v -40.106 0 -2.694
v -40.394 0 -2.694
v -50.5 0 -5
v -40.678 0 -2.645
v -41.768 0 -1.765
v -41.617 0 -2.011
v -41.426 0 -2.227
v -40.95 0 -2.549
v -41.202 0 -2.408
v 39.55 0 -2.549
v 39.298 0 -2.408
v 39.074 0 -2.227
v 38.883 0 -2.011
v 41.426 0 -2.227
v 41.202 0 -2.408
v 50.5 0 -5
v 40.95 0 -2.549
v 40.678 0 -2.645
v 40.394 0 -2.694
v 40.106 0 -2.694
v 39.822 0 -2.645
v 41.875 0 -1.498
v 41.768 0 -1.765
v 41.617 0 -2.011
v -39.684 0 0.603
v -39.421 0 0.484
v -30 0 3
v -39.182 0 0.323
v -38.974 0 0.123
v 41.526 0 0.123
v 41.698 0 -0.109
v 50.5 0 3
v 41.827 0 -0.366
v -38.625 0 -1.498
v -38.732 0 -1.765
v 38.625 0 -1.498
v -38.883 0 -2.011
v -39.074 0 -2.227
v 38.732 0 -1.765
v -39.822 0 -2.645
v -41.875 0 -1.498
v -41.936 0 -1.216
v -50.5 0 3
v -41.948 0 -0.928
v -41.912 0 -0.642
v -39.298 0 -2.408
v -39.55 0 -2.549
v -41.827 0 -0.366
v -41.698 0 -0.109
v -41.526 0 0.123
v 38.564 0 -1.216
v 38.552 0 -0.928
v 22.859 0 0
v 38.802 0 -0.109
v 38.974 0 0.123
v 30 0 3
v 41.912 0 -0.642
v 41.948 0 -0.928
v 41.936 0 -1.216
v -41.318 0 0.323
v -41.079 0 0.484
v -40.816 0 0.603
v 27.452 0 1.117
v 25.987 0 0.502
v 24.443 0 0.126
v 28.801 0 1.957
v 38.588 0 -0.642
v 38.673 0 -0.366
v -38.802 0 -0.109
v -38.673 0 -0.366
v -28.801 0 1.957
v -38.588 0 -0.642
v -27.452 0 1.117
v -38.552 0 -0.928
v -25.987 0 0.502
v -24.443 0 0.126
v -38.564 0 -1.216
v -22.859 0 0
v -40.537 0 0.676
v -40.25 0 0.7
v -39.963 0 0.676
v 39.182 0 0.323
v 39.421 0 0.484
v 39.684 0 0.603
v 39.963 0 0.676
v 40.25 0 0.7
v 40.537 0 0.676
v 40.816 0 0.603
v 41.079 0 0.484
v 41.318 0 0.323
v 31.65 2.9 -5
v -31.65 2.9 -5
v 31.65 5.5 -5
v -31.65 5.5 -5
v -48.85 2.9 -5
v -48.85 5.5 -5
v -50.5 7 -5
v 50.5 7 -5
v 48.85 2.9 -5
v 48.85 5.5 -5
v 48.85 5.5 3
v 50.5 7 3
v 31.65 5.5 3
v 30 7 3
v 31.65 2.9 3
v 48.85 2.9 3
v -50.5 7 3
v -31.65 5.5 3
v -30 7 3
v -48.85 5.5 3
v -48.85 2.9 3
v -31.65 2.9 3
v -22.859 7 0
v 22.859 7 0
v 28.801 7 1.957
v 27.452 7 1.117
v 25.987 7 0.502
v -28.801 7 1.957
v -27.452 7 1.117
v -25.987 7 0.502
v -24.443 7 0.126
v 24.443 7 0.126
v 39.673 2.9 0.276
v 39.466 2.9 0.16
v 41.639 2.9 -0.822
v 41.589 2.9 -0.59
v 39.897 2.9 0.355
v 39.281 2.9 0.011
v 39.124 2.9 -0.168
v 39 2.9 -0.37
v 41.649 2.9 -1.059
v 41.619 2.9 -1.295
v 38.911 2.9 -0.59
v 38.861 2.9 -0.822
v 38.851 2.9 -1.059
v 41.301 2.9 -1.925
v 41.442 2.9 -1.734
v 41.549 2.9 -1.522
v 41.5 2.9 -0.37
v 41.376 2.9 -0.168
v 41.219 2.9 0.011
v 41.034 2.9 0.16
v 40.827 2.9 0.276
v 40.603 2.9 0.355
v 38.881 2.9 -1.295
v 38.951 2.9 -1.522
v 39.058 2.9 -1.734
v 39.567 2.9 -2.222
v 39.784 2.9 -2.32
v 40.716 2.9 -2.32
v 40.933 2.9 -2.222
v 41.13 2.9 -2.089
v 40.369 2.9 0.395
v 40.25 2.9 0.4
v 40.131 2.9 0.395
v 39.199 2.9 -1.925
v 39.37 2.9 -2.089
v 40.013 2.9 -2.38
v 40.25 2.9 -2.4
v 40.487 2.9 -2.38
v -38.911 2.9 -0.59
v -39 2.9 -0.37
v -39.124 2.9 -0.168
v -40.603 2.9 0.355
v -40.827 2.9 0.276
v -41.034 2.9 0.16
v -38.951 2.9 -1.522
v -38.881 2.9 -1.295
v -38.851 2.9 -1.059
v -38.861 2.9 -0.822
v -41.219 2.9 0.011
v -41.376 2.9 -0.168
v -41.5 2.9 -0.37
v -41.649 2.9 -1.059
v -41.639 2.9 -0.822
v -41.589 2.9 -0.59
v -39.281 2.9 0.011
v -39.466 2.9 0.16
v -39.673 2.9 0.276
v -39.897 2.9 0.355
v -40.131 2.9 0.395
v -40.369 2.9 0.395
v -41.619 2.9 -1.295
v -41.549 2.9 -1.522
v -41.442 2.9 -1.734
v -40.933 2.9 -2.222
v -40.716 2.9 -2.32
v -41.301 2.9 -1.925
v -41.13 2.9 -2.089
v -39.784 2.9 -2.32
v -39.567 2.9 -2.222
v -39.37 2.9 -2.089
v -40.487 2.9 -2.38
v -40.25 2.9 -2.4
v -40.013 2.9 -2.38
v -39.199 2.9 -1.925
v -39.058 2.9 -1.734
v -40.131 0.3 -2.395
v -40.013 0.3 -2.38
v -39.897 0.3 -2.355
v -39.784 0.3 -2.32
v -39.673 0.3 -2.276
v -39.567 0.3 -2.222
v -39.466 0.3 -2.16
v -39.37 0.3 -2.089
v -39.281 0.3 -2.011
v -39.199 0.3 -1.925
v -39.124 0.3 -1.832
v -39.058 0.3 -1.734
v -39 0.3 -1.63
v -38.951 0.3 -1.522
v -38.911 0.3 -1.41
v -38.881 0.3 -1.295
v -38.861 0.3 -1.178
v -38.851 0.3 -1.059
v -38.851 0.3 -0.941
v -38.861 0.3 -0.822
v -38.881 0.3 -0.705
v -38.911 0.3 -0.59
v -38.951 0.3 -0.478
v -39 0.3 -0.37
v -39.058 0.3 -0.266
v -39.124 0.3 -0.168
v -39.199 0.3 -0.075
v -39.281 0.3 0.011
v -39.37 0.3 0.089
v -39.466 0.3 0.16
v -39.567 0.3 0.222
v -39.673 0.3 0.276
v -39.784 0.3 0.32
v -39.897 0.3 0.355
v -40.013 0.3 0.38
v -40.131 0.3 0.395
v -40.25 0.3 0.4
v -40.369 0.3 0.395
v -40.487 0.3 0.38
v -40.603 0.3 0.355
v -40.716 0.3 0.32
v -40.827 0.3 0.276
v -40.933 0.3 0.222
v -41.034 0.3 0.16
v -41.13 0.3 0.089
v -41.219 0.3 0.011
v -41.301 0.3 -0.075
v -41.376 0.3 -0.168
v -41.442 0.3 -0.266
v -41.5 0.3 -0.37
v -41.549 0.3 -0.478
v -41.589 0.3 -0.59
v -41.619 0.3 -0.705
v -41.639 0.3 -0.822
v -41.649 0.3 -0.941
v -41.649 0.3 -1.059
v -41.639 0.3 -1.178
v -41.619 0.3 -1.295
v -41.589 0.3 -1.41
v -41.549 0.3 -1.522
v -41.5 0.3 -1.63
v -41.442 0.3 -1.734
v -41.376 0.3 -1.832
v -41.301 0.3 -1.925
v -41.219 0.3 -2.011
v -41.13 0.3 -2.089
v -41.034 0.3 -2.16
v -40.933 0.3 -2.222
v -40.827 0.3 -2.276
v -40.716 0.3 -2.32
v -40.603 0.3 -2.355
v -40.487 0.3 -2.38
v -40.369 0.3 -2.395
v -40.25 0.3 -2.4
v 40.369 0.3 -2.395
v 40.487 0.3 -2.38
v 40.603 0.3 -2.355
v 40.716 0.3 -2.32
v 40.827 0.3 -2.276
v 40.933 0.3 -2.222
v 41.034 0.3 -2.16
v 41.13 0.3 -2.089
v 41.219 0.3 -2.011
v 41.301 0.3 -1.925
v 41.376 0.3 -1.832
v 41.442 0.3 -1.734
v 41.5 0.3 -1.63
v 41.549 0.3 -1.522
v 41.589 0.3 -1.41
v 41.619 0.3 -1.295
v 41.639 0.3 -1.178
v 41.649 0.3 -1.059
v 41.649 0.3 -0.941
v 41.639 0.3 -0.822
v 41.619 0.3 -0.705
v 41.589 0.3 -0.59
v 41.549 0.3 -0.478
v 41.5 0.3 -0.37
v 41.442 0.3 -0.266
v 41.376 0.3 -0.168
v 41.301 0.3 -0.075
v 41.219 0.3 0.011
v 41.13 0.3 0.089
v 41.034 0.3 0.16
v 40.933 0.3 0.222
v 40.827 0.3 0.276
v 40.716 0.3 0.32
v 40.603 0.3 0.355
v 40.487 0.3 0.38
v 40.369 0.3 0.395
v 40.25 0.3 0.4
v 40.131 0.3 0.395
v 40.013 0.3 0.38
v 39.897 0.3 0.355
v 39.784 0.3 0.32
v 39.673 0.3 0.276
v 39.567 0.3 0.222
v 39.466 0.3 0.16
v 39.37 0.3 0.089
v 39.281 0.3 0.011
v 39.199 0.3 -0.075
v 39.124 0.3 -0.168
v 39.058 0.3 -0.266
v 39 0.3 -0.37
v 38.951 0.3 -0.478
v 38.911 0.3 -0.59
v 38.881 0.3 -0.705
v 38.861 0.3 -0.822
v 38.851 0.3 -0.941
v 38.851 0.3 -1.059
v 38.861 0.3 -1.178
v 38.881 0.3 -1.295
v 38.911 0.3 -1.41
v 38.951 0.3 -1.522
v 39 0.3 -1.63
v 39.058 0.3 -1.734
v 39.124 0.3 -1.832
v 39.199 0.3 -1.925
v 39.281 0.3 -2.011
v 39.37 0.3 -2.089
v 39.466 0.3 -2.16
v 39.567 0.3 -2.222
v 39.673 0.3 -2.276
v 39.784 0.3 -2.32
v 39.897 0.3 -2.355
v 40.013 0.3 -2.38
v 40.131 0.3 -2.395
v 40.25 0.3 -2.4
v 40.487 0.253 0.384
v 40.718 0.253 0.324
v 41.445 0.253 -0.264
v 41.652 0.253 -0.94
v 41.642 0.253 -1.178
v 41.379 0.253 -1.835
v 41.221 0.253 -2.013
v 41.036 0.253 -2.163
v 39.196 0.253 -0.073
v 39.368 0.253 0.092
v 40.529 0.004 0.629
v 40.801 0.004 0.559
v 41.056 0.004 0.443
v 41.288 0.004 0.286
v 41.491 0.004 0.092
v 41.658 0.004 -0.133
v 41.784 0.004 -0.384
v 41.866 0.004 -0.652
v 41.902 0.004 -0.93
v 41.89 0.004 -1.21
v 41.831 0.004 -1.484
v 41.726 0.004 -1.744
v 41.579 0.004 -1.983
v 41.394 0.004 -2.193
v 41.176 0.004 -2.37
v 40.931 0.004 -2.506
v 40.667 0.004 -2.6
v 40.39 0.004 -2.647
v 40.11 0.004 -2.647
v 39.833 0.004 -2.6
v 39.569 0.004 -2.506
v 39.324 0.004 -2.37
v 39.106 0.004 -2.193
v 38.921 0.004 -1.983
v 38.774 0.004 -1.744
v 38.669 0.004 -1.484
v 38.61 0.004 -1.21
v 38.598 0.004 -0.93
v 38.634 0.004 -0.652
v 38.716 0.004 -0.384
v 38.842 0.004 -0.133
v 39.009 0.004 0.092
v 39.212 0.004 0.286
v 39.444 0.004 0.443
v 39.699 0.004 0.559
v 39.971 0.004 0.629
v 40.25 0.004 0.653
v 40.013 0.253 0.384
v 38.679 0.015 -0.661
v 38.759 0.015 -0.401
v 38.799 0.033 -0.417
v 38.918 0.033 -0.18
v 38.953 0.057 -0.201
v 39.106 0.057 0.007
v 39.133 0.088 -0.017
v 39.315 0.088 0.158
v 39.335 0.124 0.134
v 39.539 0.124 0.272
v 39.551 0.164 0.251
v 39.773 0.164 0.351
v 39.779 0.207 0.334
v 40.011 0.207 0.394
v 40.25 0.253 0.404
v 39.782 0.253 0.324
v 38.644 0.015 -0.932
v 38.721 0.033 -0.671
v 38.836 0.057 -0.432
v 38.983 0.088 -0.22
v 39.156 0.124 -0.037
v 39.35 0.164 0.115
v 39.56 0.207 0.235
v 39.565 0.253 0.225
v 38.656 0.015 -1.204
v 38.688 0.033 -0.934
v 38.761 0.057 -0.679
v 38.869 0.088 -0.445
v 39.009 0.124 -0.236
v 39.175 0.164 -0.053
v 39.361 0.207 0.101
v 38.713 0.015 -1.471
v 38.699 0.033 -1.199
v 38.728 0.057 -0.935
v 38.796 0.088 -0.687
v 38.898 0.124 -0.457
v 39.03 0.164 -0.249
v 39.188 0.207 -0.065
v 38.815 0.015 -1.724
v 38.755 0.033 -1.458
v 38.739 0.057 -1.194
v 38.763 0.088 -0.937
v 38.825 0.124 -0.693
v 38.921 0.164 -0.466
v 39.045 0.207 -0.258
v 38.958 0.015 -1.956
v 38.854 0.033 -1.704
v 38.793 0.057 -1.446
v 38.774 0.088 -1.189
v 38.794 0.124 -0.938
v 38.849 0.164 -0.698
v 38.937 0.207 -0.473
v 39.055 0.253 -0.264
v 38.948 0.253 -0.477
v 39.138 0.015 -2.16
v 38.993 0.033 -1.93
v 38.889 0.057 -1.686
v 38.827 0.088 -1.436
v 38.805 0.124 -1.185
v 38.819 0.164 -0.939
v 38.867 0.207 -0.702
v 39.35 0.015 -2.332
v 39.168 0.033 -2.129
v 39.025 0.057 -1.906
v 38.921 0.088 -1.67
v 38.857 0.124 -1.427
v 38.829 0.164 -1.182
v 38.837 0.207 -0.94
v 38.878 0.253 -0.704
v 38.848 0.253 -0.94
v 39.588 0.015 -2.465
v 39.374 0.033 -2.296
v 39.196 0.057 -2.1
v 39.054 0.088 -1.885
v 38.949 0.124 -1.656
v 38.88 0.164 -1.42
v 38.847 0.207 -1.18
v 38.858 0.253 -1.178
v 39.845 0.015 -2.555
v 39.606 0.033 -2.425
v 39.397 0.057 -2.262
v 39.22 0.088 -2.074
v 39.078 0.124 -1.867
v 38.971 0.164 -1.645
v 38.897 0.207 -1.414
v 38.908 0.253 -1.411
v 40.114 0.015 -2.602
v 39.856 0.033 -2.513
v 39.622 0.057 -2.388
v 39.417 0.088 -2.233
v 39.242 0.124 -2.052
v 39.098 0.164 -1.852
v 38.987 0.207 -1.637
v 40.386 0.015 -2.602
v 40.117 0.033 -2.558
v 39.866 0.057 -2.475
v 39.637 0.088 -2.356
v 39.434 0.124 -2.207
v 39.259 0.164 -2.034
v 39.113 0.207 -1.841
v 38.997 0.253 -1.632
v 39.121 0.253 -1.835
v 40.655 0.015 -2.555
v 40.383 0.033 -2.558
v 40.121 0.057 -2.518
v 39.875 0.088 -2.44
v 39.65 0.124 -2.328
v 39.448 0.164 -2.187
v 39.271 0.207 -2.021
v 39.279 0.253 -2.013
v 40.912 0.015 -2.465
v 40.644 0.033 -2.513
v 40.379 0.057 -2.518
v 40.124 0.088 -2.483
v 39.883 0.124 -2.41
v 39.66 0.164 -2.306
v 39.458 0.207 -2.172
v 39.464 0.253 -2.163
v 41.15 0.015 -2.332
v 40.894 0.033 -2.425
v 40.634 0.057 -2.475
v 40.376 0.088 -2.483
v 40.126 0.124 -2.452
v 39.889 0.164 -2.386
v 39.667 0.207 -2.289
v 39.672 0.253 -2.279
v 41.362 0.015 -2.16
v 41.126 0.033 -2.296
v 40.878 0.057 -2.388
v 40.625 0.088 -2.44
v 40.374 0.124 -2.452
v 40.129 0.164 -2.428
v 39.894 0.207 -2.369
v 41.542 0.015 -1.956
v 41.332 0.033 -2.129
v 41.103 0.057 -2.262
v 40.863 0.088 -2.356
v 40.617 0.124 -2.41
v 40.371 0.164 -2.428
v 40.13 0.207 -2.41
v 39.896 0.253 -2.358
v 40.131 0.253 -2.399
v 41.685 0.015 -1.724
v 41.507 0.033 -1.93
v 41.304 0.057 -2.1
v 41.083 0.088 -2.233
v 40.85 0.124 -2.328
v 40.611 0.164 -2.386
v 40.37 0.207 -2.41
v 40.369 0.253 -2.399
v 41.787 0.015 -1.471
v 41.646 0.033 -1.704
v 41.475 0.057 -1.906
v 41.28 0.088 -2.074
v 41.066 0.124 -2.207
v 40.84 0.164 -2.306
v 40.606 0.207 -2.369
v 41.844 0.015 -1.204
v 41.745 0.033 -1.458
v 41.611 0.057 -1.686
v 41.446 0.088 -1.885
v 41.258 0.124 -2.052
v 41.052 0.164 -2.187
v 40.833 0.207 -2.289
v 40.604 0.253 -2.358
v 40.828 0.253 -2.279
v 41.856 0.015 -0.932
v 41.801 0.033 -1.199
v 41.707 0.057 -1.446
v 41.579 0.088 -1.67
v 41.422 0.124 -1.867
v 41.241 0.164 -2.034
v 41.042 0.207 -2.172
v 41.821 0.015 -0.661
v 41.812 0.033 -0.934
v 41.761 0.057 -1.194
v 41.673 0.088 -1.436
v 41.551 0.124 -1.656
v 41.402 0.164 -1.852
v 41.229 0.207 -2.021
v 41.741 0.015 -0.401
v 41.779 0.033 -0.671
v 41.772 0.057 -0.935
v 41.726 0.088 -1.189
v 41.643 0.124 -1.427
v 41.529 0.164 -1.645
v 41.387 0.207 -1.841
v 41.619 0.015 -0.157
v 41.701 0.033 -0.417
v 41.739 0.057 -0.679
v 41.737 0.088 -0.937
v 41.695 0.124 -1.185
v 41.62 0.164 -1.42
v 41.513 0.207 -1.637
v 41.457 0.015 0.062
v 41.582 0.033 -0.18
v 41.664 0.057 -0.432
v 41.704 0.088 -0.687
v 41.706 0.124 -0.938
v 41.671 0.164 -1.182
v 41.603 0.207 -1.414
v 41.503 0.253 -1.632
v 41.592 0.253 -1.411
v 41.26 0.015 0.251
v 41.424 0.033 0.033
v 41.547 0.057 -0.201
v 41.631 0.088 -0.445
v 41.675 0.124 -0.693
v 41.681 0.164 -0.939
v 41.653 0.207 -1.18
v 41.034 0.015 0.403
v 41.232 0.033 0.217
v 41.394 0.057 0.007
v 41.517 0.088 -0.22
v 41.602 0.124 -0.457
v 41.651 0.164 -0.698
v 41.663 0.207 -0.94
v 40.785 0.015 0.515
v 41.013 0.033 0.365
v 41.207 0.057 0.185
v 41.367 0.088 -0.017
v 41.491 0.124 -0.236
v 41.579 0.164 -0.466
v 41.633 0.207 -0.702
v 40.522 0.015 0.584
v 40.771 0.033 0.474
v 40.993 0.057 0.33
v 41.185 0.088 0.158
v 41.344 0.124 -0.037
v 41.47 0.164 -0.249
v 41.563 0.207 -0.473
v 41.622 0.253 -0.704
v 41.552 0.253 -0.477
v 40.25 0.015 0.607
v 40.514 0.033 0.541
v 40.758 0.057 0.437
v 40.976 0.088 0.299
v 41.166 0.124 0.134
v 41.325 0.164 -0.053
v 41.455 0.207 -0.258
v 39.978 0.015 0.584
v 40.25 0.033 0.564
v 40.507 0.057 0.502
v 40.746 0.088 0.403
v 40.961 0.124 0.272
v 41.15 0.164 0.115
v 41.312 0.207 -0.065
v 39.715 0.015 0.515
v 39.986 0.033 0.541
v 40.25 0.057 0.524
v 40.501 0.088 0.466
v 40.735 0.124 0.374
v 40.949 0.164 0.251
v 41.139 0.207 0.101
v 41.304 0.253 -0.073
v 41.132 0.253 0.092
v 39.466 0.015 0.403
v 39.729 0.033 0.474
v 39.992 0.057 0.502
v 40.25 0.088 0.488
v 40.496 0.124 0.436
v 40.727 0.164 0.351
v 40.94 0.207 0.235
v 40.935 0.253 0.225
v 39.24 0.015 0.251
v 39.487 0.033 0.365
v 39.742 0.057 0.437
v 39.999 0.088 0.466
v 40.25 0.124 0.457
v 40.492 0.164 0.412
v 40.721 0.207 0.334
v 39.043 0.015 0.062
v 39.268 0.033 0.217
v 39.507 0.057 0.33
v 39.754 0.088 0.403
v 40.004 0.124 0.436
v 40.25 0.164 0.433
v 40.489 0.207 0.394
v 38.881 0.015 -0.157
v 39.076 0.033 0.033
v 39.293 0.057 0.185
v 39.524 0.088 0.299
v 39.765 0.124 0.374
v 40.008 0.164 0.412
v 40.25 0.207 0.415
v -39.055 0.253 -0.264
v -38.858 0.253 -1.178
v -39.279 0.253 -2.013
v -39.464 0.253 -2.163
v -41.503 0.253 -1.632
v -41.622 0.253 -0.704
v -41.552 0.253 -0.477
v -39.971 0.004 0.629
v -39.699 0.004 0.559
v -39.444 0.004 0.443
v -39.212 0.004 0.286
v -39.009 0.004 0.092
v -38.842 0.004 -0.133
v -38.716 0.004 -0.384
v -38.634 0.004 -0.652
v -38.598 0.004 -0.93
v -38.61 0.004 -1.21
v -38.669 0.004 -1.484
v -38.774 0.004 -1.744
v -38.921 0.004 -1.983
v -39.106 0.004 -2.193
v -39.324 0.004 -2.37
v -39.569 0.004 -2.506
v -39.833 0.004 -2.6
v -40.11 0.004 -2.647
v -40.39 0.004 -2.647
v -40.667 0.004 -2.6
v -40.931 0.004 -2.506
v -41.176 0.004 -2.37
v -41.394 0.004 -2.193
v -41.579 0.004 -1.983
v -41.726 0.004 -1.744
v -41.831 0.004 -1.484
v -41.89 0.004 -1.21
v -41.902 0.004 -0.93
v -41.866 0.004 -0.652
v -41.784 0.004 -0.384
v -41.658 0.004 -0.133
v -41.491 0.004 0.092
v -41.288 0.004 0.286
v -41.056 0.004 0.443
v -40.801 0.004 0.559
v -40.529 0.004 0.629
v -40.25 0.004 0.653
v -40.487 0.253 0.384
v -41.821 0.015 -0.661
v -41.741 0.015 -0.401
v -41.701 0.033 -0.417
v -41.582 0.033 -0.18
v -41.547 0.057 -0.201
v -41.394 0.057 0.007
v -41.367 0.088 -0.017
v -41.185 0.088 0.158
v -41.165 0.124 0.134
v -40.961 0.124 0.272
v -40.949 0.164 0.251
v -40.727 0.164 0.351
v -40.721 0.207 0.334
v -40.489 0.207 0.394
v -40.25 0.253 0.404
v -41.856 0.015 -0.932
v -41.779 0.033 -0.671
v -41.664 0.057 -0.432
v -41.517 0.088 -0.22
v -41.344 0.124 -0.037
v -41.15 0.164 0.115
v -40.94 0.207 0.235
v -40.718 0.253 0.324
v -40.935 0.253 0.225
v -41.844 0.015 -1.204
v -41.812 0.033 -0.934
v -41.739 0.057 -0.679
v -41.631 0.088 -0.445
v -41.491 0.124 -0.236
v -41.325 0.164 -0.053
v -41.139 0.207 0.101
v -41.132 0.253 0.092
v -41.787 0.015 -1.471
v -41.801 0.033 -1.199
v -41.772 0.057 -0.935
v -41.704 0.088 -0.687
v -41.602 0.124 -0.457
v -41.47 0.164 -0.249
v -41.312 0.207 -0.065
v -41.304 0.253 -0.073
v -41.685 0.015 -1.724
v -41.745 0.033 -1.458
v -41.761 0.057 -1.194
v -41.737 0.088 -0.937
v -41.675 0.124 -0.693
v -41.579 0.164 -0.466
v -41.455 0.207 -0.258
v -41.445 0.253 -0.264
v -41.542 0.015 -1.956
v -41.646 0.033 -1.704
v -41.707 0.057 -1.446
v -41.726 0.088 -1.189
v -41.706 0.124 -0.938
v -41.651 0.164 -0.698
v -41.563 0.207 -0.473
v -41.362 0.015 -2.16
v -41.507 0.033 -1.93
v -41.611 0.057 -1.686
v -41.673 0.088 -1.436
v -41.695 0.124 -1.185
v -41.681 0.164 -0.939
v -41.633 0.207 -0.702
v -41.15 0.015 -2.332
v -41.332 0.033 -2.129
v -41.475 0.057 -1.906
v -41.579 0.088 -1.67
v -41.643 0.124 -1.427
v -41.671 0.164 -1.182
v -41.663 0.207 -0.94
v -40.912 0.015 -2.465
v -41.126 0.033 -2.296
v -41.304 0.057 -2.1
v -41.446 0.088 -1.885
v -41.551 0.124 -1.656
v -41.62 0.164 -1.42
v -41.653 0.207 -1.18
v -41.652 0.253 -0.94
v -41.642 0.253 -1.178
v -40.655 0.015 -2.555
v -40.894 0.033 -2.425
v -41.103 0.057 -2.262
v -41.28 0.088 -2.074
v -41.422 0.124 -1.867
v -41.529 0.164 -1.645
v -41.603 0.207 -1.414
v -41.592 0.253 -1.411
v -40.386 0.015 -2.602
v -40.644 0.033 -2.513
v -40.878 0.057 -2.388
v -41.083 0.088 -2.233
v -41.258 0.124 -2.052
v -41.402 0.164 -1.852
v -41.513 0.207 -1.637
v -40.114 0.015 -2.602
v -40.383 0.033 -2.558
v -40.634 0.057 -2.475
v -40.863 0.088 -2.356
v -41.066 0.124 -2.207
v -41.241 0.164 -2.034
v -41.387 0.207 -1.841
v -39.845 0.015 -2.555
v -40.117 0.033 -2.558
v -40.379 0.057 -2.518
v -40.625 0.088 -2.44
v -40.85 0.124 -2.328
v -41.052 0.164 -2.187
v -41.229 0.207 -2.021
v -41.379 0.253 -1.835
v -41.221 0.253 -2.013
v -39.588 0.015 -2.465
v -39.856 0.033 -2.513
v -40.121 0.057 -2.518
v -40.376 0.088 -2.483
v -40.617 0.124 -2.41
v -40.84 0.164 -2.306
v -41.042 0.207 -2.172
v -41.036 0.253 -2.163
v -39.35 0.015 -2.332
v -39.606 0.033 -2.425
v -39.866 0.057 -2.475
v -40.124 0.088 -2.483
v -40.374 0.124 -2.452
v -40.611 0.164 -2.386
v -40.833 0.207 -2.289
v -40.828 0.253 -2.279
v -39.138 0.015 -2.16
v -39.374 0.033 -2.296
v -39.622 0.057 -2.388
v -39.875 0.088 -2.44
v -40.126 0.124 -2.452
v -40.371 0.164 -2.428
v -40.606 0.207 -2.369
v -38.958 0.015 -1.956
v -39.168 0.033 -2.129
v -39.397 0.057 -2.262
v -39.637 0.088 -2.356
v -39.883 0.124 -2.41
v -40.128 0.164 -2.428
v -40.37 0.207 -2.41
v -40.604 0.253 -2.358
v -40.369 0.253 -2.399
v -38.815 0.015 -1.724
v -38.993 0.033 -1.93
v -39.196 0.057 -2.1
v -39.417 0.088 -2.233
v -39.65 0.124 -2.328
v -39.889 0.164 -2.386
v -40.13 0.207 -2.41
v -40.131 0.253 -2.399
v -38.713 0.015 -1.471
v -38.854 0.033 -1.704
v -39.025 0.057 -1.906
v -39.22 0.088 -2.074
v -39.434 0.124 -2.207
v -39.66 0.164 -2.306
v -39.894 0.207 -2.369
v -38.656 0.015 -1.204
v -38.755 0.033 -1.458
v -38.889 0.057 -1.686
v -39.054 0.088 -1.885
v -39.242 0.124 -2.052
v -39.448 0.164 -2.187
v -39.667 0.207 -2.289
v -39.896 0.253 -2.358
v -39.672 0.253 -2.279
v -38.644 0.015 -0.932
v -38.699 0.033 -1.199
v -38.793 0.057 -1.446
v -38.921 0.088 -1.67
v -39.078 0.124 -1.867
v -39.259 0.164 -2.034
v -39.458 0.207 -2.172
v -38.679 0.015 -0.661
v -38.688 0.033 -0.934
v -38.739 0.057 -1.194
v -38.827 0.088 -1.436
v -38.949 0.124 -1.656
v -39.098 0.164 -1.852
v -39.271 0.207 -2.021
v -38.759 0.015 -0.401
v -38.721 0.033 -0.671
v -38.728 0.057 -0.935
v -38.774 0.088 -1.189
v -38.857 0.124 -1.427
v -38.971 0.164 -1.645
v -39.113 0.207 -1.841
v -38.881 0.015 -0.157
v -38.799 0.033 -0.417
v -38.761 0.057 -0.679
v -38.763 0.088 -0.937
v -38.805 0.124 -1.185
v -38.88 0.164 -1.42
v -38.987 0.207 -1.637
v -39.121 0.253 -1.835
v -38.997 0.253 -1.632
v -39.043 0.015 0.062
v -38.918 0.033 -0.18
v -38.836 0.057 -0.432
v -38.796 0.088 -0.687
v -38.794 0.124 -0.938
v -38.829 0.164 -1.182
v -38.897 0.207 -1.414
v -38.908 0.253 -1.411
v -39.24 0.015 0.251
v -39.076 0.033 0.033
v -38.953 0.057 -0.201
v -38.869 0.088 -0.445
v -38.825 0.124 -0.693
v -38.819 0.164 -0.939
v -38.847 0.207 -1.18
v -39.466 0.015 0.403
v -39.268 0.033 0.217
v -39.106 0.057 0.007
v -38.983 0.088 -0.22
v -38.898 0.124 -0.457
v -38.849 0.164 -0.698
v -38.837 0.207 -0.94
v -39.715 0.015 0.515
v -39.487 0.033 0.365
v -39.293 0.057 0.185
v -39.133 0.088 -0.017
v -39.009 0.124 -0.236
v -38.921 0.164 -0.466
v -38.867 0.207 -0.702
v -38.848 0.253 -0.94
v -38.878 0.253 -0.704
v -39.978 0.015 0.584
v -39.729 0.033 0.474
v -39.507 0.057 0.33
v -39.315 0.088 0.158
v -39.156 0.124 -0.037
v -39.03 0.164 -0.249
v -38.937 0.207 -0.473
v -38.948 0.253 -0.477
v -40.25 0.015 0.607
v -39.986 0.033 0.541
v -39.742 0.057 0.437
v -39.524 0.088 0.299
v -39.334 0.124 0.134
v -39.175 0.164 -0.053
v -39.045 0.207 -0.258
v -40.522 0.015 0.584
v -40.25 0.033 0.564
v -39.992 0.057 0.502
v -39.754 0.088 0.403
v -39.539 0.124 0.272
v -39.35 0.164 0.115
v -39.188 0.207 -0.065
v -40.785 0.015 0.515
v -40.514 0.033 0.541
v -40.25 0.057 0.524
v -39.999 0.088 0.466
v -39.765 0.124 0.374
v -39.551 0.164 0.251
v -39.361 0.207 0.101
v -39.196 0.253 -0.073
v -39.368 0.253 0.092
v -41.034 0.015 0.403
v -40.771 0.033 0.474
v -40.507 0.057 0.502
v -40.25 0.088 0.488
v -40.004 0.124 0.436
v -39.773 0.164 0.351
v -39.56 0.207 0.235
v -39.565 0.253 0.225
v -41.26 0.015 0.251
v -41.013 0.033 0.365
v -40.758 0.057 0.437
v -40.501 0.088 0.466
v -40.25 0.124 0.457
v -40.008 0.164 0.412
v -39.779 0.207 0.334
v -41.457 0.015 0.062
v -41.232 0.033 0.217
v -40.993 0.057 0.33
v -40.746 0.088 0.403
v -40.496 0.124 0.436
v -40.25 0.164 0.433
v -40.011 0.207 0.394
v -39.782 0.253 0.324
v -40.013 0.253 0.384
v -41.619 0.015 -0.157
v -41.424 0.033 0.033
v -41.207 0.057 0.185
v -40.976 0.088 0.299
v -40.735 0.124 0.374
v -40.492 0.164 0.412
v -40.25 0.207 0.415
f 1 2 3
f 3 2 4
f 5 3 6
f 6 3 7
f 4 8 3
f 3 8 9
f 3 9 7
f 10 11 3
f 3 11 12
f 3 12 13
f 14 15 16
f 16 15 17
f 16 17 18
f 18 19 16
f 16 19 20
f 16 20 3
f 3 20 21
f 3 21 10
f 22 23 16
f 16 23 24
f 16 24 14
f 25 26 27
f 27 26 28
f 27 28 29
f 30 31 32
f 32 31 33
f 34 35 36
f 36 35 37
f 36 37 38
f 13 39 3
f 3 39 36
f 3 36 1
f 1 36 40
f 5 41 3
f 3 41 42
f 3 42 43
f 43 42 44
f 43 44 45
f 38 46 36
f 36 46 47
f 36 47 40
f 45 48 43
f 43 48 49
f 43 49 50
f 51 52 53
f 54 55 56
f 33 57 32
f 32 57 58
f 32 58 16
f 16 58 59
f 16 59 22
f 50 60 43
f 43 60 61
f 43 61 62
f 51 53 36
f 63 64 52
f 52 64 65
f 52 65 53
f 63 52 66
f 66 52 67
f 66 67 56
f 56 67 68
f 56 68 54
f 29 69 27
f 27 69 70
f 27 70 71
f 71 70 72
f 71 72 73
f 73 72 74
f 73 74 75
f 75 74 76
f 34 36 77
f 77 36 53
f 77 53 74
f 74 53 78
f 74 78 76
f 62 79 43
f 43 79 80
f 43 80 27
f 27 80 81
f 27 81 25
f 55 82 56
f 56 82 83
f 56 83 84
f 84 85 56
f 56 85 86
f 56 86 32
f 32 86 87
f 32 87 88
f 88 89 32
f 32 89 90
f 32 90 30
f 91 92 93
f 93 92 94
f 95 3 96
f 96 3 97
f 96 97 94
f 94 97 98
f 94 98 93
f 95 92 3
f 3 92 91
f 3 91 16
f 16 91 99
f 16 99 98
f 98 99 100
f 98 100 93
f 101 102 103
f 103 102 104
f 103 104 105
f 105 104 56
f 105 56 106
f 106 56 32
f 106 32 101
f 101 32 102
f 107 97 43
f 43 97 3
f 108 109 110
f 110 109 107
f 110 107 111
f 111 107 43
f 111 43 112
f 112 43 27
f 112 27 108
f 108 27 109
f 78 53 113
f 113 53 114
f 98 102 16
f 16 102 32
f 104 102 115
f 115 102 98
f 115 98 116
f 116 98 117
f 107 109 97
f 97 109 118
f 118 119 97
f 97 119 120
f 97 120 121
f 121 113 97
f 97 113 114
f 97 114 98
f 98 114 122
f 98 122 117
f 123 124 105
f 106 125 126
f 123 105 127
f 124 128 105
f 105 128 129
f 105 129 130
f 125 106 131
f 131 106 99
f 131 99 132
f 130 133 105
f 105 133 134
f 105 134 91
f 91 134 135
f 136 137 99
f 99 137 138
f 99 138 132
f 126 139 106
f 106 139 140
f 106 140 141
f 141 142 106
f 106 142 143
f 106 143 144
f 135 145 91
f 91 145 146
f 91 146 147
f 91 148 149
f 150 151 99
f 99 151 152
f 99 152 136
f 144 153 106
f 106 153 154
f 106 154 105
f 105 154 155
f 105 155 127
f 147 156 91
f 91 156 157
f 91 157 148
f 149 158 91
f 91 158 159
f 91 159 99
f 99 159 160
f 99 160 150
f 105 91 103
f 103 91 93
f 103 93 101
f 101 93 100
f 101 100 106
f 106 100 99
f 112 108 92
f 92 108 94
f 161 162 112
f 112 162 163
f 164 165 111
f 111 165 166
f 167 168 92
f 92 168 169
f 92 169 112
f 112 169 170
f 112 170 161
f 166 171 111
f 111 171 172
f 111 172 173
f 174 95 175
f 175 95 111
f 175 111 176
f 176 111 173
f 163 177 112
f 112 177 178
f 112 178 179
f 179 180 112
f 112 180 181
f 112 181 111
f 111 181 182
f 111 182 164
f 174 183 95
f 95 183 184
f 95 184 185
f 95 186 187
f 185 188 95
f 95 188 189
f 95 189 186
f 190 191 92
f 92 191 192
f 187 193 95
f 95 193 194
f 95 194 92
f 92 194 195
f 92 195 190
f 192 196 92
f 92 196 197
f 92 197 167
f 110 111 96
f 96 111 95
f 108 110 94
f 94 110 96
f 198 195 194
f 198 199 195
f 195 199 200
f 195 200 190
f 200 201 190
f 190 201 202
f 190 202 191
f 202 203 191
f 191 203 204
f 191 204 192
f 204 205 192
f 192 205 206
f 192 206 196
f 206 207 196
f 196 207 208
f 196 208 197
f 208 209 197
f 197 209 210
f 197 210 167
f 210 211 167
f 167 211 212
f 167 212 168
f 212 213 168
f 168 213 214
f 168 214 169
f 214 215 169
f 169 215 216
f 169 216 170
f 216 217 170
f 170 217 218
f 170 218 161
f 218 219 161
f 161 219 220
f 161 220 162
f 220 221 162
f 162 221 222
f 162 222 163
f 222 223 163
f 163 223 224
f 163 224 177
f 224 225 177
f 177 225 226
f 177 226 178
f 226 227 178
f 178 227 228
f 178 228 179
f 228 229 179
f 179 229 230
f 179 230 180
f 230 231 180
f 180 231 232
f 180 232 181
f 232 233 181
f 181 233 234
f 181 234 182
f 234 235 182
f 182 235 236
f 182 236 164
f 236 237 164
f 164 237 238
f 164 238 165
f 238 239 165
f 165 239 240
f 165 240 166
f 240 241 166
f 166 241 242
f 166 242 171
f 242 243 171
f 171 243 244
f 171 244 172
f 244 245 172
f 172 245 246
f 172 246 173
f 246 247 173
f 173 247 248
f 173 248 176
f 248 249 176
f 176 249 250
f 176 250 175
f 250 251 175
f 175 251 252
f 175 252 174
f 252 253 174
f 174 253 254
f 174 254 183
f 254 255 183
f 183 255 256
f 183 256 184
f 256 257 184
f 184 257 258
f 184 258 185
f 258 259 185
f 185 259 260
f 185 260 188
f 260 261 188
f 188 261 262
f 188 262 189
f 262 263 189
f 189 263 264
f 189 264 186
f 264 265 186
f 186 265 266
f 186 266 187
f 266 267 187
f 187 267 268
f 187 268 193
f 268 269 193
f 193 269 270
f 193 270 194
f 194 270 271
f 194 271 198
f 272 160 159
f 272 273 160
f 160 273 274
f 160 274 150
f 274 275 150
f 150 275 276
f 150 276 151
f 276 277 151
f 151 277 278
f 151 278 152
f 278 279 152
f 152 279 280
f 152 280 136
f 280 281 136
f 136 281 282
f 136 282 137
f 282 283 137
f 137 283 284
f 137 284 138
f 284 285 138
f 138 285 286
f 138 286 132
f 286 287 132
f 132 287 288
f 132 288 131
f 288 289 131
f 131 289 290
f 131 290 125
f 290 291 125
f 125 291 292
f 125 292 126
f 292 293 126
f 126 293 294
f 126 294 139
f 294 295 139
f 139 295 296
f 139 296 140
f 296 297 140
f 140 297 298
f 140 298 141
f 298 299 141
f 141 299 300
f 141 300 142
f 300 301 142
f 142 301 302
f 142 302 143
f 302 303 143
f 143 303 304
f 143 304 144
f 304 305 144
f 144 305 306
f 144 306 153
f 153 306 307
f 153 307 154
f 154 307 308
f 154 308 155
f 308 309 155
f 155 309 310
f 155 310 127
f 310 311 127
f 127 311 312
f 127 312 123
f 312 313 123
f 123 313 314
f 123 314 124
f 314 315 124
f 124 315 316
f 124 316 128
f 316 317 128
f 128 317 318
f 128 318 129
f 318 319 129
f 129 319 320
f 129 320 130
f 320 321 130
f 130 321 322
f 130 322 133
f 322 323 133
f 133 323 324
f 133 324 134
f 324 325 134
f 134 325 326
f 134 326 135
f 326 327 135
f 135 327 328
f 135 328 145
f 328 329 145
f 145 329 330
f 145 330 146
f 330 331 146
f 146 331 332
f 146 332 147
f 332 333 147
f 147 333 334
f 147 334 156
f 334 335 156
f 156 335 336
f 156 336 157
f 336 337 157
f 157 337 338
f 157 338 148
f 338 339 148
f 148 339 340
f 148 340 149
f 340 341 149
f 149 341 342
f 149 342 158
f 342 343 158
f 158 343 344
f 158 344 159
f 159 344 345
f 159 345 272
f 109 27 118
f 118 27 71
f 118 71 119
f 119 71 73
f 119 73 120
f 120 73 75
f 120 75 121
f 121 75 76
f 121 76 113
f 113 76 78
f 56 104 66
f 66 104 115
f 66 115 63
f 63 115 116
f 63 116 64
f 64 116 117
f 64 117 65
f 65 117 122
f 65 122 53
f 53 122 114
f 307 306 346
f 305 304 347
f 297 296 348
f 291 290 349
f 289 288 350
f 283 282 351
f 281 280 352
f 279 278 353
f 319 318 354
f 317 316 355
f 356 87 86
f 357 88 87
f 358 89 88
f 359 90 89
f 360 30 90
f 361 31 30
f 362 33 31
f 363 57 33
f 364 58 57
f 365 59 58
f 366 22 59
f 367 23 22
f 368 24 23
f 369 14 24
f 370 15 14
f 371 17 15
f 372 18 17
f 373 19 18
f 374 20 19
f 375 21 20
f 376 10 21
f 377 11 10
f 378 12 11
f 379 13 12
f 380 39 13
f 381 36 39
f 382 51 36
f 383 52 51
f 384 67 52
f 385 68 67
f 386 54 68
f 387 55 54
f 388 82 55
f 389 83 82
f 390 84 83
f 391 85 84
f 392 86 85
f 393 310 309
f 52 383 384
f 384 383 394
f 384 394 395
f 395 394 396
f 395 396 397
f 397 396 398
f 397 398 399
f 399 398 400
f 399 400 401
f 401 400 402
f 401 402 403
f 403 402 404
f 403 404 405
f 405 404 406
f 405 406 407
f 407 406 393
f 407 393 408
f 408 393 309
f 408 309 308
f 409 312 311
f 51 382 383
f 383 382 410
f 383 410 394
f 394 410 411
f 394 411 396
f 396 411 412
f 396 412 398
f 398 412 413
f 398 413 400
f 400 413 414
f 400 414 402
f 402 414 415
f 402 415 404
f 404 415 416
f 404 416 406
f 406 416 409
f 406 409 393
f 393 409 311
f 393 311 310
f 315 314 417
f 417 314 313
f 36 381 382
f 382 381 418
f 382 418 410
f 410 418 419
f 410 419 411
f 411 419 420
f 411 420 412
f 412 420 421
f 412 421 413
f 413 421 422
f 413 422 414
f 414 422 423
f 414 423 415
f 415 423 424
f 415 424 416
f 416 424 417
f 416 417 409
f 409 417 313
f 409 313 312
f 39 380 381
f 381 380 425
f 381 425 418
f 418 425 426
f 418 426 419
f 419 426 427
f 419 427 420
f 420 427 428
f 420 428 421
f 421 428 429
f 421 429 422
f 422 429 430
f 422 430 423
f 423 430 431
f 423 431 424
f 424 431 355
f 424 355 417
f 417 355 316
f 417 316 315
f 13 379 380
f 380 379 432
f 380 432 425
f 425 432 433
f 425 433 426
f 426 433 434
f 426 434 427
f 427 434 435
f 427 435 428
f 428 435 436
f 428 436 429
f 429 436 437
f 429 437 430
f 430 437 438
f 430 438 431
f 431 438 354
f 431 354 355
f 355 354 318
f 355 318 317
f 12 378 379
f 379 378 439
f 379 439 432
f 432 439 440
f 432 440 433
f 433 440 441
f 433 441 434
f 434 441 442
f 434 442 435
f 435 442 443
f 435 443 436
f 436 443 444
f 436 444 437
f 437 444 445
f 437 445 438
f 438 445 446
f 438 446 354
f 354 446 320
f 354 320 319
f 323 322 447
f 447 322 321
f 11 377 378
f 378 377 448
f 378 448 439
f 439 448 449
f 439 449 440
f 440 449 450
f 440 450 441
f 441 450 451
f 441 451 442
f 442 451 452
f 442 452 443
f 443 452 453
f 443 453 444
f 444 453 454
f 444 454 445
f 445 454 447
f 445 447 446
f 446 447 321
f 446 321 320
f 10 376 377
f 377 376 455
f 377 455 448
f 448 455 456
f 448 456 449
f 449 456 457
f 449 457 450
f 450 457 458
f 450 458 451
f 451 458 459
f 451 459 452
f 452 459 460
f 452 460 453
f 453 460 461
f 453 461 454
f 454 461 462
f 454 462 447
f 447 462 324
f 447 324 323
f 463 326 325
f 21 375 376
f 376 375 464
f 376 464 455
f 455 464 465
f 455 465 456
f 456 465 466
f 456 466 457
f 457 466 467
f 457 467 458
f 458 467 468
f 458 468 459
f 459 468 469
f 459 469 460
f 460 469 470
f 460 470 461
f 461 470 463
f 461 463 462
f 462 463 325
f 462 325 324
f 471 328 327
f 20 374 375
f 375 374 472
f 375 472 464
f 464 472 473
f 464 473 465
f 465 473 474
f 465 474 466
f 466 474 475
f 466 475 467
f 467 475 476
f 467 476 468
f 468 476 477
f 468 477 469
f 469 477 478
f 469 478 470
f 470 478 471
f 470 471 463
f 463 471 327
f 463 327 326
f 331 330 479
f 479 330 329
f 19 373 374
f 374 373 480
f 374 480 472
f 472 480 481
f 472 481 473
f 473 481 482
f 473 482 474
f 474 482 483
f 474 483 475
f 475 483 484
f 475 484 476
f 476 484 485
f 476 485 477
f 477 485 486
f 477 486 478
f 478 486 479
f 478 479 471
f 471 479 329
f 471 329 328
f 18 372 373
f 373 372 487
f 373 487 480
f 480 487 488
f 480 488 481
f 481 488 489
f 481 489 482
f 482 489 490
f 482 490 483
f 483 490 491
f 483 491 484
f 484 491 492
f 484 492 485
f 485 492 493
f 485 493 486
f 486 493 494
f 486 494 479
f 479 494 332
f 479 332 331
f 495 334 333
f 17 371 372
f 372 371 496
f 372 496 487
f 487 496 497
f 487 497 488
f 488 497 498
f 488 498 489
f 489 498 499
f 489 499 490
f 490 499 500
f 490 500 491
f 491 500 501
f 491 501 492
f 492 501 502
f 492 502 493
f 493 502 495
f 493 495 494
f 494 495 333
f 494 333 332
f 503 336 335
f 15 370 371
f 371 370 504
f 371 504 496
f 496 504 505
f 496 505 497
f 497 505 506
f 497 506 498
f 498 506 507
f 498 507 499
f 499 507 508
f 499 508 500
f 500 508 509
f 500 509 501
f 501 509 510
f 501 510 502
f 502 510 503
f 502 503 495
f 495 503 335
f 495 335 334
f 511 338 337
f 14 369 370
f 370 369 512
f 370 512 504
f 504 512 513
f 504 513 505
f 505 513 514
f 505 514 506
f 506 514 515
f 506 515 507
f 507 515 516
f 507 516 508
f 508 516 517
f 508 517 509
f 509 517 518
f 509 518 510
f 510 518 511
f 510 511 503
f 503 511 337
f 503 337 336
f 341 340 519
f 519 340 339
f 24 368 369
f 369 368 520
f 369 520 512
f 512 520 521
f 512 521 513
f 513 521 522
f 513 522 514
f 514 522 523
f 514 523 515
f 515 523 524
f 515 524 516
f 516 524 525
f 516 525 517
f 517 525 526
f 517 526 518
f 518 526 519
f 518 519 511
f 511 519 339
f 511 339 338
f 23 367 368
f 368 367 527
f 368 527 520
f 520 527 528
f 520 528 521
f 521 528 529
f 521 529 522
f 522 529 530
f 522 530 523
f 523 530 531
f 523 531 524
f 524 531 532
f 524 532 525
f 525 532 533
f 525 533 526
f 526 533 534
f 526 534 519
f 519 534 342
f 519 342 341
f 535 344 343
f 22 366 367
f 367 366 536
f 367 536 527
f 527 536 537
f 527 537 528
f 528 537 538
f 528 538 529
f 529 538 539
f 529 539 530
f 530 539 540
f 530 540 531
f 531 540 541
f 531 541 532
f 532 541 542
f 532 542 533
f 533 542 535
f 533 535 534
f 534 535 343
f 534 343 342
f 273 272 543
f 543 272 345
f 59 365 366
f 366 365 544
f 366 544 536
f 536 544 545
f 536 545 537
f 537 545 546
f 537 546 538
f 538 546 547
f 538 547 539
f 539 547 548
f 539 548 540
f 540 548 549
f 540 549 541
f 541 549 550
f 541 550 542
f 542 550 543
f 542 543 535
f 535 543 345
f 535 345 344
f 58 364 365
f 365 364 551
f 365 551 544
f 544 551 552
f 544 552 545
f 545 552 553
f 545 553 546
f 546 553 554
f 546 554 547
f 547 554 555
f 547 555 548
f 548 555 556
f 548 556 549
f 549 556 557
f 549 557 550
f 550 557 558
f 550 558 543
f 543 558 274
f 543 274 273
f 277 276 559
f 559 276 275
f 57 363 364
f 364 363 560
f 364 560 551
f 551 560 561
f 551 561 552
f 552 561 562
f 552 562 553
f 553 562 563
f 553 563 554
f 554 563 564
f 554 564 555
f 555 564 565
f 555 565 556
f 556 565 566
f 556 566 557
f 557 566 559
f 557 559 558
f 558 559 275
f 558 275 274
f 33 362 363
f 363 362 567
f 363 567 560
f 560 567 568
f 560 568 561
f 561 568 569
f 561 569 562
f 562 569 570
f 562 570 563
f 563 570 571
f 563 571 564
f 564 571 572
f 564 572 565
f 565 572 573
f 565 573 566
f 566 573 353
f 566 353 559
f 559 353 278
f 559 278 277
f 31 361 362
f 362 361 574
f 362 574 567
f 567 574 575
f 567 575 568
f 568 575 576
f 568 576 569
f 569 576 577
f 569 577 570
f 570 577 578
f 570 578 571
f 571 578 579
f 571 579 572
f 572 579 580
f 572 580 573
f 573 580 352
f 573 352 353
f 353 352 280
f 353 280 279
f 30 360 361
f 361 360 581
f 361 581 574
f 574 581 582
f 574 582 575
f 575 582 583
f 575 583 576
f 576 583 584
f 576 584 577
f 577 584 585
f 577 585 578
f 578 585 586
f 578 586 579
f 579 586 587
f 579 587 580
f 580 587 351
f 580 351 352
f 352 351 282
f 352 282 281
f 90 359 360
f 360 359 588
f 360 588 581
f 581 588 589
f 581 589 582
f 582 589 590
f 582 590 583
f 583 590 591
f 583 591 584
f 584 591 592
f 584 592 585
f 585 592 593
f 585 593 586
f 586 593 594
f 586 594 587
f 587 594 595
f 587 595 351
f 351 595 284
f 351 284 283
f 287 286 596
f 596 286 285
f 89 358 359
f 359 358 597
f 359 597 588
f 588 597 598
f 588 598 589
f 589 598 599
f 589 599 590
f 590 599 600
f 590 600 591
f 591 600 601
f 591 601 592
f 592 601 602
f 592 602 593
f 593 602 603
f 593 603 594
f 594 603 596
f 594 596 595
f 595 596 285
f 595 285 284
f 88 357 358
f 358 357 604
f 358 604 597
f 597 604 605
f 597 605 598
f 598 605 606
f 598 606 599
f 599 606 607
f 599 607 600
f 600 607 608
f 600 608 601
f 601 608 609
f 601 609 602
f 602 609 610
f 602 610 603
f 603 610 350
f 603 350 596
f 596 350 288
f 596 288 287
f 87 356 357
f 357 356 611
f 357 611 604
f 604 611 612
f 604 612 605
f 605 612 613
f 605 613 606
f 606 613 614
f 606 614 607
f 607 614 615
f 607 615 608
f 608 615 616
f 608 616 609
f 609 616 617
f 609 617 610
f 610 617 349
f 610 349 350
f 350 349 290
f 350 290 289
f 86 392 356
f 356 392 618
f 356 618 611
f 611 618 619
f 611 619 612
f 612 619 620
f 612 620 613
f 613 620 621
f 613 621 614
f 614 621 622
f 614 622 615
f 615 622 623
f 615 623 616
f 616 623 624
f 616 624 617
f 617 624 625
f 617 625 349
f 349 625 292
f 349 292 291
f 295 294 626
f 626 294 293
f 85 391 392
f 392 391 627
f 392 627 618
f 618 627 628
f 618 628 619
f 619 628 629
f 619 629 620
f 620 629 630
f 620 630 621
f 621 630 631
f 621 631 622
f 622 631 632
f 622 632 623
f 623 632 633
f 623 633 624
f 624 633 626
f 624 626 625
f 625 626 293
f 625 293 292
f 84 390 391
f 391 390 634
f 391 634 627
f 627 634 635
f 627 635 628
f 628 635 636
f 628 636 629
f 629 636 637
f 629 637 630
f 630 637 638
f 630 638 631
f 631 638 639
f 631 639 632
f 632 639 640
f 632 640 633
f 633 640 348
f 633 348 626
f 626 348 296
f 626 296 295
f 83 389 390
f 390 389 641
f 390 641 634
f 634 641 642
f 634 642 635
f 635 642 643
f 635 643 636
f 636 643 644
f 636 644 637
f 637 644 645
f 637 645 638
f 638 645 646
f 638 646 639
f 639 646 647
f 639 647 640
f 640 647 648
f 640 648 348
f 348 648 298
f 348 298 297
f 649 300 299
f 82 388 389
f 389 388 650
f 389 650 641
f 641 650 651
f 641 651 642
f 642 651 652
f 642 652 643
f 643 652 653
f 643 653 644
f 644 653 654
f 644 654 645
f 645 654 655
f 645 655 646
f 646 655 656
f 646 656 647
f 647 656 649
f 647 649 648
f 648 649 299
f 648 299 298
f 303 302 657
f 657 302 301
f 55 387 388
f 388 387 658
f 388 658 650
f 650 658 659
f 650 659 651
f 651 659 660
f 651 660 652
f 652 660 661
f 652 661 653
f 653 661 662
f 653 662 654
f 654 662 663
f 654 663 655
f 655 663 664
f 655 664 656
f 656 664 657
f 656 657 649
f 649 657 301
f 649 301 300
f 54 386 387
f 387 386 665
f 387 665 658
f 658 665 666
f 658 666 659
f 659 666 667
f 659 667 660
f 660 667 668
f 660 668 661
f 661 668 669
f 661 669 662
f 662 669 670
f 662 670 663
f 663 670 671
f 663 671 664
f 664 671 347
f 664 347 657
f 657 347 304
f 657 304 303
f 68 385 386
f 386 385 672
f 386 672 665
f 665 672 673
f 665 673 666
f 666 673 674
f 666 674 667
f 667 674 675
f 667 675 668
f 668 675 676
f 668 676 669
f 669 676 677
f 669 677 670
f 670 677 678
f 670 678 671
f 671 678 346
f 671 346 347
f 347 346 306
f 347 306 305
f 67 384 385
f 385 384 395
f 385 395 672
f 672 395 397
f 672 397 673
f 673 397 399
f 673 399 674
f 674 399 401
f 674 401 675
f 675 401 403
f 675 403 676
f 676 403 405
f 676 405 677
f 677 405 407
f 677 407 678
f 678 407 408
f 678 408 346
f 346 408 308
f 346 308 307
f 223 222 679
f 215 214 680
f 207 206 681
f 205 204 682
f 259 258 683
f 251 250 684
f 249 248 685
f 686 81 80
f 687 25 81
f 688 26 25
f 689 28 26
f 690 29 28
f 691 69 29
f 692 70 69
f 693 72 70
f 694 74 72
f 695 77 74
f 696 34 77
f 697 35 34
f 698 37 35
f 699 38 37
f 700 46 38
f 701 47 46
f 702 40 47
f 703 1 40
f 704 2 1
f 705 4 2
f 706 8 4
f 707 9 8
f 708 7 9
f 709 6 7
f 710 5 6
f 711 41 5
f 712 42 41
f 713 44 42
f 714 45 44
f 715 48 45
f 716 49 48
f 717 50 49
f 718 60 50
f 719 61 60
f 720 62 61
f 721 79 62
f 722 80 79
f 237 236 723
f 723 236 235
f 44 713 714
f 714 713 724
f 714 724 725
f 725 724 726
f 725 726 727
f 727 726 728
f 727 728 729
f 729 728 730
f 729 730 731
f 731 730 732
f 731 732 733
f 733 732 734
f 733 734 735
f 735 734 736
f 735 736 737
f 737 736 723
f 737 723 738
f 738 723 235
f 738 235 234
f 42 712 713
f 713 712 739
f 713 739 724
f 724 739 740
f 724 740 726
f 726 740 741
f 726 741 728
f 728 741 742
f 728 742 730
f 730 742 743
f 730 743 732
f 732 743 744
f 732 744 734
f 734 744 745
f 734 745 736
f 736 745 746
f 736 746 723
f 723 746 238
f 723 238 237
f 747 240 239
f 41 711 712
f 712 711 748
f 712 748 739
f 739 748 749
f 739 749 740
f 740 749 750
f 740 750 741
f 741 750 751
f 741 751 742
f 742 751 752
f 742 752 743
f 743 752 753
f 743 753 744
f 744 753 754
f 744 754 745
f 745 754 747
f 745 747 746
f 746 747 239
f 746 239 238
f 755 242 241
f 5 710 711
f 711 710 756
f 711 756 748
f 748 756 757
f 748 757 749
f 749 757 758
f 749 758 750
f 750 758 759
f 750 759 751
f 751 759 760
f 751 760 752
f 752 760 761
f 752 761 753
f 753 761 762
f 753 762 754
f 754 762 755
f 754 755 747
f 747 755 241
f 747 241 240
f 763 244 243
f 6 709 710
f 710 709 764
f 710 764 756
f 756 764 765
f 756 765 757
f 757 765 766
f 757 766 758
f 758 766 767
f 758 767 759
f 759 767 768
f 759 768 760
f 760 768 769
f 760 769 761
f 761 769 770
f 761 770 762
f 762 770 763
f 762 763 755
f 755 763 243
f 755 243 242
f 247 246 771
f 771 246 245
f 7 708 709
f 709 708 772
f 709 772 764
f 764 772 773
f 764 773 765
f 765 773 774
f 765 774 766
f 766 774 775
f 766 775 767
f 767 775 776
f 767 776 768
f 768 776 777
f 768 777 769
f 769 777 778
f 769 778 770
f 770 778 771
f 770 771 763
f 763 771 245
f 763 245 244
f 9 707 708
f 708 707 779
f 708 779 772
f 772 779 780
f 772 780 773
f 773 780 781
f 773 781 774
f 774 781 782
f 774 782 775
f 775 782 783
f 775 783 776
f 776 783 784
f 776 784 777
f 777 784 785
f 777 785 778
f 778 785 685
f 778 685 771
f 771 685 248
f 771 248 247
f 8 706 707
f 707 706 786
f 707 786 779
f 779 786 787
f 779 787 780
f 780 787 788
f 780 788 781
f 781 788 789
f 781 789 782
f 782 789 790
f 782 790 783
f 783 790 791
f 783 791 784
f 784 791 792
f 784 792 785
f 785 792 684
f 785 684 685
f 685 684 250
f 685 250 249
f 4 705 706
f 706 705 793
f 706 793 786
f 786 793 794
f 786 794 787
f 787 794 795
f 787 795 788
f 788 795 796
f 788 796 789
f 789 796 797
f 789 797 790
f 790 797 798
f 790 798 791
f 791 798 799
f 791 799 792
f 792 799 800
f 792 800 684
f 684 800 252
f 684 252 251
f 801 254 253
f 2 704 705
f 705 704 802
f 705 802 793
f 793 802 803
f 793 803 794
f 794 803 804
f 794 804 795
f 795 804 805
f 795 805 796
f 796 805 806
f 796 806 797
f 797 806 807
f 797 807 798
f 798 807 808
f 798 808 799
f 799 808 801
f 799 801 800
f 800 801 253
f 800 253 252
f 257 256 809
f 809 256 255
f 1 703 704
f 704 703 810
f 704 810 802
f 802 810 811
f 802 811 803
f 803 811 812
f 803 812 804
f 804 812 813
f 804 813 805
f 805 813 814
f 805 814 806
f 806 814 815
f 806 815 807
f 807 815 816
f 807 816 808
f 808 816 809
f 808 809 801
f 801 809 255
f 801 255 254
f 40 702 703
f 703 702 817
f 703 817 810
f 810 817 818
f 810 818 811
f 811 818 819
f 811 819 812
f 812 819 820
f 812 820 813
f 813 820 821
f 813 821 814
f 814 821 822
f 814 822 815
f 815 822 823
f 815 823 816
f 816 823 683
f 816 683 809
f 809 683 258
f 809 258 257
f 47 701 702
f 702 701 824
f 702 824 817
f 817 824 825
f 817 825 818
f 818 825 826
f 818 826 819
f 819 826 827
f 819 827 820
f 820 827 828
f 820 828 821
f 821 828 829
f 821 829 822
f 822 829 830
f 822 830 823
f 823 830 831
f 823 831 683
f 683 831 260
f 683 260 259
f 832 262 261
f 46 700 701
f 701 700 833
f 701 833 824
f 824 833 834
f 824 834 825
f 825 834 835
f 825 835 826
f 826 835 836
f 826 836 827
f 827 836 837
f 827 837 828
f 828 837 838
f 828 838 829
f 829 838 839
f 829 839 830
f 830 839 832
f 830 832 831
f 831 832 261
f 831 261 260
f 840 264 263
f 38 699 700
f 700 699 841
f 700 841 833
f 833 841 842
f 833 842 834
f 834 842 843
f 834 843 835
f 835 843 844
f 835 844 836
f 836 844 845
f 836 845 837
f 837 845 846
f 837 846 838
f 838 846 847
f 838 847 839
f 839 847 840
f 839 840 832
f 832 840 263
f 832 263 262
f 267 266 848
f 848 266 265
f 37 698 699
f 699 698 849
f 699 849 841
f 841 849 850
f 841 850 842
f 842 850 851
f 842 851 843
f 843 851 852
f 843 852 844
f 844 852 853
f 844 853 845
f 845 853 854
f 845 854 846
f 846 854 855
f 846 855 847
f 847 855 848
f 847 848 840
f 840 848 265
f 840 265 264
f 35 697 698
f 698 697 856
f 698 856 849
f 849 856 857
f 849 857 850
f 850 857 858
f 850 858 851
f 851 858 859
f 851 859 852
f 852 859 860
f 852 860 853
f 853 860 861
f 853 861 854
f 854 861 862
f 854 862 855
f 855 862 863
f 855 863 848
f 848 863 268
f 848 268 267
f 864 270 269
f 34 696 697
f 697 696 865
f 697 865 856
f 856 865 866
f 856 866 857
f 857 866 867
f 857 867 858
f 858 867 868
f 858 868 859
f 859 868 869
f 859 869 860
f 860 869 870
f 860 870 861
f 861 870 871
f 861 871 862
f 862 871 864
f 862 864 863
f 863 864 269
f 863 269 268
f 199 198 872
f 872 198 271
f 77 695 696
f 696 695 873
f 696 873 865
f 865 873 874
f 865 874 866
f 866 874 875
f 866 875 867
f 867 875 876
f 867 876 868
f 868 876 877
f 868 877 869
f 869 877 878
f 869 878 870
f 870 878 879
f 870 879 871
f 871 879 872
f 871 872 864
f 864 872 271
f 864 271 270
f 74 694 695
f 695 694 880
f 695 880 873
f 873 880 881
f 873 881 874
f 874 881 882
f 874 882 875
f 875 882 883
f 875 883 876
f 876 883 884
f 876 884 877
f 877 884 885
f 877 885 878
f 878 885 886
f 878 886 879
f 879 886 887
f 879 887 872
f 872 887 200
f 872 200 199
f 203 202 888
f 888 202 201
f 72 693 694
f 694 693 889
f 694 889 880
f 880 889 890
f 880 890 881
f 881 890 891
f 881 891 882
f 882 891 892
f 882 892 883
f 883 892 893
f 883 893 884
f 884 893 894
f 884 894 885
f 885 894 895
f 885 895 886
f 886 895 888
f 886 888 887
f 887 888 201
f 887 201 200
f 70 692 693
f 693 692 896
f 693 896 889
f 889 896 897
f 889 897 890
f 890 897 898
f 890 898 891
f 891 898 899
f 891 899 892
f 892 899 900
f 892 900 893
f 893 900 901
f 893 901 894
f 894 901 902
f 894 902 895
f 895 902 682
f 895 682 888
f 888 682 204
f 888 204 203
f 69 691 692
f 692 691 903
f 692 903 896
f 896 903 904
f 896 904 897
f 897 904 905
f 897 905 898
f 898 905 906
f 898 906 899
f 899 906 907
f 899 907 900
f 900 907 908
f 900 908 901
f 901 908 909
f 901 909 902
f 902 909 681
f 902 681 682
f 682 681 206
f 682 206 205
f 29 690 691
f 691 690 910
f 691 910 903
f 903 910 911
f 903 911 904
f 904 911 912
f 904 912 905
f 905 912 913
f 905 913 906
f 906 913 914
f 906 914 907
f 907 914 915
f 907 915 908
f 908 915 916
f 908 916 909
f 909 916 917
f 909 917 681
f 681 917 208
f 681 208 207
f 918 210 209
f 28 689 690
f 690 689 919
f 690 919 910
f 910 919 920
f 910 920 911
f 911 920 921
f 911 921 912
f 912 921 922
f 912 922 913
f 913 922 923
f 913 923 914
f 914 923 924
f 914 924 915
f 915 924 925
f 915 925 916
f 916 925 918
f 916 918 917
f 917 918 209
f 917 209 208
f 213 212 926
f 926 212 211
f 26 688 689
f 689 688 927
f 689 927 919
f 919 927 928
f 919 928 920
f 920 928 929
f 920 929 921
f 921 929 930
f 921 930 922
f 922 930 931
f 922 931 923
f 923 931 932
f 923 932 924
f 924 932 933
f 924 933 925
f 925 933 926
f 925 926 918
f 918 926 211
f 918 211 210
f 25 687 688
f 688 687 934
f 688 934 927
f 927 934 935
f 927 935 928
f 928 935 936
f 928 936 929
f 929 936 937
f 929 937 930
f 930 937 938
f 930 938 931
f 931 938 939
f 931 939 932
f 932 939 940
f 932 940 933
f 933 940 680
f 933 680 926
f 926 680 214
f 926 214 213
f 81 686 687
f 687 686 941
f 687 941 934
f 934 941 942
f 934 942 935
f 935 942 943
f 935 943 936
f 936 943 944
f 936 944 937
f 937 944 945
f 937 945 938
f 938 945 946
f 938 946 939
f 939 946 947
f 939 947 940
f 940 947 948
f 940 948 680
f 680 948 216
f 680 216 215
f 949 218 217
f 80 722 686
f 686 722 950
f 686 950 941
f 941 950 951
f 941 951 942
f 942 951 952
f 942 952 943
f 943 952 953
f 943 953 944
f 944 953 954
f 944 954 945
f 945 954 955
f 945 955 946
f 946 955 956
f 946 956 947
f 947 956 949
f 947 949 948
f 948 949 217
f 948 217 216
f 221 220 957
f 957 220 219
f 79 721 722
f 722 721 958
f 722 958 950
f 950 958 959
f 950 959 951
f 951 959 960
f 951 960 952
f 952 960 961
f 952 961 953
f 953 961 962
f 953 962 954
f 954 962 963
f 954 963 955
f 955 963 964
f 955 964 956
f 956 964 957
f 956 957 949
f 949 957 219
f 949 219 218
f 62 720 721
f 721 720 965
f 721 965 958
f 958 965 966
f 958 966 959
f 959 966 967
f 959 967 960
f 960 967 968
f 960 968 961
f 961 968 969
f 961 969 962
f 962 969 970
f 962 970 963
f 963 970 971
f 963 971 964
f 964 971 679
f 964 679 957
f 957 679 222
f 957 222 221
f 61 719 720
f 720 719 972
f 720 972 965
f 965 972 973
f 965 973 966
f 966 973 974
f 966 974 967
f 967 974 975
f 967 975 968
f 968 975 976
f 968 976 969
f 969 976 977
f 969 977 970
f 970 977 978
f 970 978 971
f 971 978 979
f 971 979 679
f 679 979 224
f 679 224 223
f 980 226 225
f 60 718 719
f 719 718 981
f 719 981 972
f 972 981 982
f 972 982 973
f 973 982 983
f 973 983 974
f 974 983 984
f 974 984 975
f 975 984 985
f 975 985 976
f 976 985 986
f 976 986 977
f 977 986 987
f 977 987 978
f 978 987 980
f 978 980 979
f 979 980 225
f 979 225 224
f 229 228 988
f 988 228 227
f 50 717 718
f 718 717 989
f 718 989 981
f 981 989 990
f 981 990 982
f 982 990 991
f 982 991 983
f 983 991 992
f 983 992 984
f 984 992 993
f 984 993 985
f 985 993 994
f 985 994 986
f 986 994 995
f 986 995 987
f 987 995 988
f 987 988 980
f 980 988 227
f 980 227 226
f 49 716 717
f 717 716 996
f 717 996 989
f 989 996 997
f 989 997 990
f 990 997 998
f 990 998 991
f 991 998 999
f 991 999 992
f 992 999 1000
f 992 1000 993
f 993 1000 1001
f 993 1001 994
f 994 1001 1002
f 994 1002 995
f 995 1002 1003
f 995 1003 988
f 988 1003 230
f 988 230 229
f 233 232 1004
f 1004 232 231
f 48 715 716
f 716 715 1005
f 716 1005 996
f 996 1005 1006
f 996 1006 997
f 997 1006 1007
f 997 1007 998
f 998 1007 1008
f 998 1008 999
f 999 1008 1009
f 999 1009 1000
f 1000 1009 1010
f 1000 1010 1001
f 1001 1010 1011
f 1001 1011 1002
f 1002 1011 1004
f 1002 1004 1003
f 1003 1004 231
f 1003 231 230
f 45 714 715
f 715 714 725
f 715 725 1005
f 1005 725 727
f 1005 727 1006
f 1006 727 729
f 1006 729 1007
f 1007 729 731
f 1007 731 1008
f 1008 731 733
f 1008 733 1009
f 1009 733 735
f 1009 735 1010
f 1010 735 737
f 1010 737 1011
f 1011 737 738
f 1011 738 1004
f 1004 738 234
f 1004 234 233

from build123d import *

# Parameters (mm, degrees)
SKETCH2_W           = 60
SKETCH2_H           = 5
BOSS_EXTRUDE1_DEPTH = 7
CUT_EXTRUDE1_DEPTH  = 12
SKETCH5_R           = 1.4
CUT_EXTRUDE2_DEPTH  = 3
FILLET1_R           = 10
FILLET2_R           = 0.3


with BuildPart() as part:
    # Sketch2 → Boss-Extrude1 (new body)
    with BuildSketch(Plane(origin=(0, 0, 0), x_dir=(1, 0, 0), z_dir=(0, 1, 0))):
        Polygon((-50.5, 5), (-30, 5), (-30, 0), (-30, -3), (-50.5, -3), align=None)
        with Locations((0, 2.5)):
            Rectangle(SKETCH2_W, SKETCH2_H)
        Polygon((30, -3), (30, 0), (30, 5), (50.5, 5), (50.5, -3), align=None)
    extrude(amount=BOSS_EXTRUDE1_DEPTH)

    # Sketch4 → Cut-Extrude1 (cut)
    with BuildSketch(Plane.XY.offset(3)):
        Polygon((-31.65, 2.9), (-31.65, 5.5), (-40.25, 5.5), (-48.85, 5.5), (-48.85, 2.9), align=None)
        Polygon((48.85, 2.9), (31.65, 2.9), (31.65, 5.5), (40.25, 5.5), (48.85, 5.5), align=None)
    extrude(amount=-CUT_EXTRUDE1_DEPTH, mode=Mode.SUBTRACT)

    # Sketch5 → Cut-Extrude2 (cut)
    with BuildSketch(Plane.XZ):
        with Locations(Location((40.25, -1, 0), (0, 0, 270))):
            Circle(SKETCH5_R)
        with Locations(Location((-40.25, -1, 0), (0, 0, 270))):
            Circle(SKETCH5_R)
    extrude(amount=-CUT_EXTRUDE2_DEPTH, mode=Mode.SUBTRACT)

    # Fillet1
    # the kernel refuses this fillet: 10 mm, written as the material it adds along each edge
    with BuildSketch(Plane(origin=(-30, 0, 0), x_dir=(0, 0, 1), z_dir=(0, 1, 0))) as fillet1_piece_1:
        with BuildLine():
            CenterArc((10, 7.141428429), FILLET1_R, 180, 45.572995999)
            Line((0, 7.141428429), (-0.2, 7.141428429))
            Line((-0.2, 7.141428429), (-0.2, 0))
            Line((-0.2, 0), (0, -0.2))
            ThreePointArc((0, -0.2), (1.5, -0.2), (2.86, -0.142828569))
            Line((2.86, -0.142828569), (3, 0))
        make_face()
    extrude(amount=7)
    with BuildSketch(Plane(origin=(30, 0, 0), x_dir=(0, 0, 1), z_dir=(0, 1, 0))) as fillet1_piece_2:
        with BuildLine():
            CenterArc((10, -7.141428429), FILLET1_R, 134.427004001, 45.572995999)
            Line((0, -7.141428429), (-0.2, -7.141428429))
            Line((-0.2, -7.141428429), (-0.2, 0))
            Line((-0.2, 0), (0, 0.2))
            ThreePointArc((0, 0.2), (1.5, 0.2), (2.86, 0.142828569))
            Line((2.86, 0.142828569), (3, 0))
        make_face()
    extrude(amount=7)

    # Fillet2
    fillet2_edges = [part.edges().sort_by_distance(p)[0] for p in [
        (40.25, 0, 0.4),
        (-40.25, 0, 0.4),
    ]]
    fillet(fillet2_edges, radius=FILLET2_R)


solid = part.part
